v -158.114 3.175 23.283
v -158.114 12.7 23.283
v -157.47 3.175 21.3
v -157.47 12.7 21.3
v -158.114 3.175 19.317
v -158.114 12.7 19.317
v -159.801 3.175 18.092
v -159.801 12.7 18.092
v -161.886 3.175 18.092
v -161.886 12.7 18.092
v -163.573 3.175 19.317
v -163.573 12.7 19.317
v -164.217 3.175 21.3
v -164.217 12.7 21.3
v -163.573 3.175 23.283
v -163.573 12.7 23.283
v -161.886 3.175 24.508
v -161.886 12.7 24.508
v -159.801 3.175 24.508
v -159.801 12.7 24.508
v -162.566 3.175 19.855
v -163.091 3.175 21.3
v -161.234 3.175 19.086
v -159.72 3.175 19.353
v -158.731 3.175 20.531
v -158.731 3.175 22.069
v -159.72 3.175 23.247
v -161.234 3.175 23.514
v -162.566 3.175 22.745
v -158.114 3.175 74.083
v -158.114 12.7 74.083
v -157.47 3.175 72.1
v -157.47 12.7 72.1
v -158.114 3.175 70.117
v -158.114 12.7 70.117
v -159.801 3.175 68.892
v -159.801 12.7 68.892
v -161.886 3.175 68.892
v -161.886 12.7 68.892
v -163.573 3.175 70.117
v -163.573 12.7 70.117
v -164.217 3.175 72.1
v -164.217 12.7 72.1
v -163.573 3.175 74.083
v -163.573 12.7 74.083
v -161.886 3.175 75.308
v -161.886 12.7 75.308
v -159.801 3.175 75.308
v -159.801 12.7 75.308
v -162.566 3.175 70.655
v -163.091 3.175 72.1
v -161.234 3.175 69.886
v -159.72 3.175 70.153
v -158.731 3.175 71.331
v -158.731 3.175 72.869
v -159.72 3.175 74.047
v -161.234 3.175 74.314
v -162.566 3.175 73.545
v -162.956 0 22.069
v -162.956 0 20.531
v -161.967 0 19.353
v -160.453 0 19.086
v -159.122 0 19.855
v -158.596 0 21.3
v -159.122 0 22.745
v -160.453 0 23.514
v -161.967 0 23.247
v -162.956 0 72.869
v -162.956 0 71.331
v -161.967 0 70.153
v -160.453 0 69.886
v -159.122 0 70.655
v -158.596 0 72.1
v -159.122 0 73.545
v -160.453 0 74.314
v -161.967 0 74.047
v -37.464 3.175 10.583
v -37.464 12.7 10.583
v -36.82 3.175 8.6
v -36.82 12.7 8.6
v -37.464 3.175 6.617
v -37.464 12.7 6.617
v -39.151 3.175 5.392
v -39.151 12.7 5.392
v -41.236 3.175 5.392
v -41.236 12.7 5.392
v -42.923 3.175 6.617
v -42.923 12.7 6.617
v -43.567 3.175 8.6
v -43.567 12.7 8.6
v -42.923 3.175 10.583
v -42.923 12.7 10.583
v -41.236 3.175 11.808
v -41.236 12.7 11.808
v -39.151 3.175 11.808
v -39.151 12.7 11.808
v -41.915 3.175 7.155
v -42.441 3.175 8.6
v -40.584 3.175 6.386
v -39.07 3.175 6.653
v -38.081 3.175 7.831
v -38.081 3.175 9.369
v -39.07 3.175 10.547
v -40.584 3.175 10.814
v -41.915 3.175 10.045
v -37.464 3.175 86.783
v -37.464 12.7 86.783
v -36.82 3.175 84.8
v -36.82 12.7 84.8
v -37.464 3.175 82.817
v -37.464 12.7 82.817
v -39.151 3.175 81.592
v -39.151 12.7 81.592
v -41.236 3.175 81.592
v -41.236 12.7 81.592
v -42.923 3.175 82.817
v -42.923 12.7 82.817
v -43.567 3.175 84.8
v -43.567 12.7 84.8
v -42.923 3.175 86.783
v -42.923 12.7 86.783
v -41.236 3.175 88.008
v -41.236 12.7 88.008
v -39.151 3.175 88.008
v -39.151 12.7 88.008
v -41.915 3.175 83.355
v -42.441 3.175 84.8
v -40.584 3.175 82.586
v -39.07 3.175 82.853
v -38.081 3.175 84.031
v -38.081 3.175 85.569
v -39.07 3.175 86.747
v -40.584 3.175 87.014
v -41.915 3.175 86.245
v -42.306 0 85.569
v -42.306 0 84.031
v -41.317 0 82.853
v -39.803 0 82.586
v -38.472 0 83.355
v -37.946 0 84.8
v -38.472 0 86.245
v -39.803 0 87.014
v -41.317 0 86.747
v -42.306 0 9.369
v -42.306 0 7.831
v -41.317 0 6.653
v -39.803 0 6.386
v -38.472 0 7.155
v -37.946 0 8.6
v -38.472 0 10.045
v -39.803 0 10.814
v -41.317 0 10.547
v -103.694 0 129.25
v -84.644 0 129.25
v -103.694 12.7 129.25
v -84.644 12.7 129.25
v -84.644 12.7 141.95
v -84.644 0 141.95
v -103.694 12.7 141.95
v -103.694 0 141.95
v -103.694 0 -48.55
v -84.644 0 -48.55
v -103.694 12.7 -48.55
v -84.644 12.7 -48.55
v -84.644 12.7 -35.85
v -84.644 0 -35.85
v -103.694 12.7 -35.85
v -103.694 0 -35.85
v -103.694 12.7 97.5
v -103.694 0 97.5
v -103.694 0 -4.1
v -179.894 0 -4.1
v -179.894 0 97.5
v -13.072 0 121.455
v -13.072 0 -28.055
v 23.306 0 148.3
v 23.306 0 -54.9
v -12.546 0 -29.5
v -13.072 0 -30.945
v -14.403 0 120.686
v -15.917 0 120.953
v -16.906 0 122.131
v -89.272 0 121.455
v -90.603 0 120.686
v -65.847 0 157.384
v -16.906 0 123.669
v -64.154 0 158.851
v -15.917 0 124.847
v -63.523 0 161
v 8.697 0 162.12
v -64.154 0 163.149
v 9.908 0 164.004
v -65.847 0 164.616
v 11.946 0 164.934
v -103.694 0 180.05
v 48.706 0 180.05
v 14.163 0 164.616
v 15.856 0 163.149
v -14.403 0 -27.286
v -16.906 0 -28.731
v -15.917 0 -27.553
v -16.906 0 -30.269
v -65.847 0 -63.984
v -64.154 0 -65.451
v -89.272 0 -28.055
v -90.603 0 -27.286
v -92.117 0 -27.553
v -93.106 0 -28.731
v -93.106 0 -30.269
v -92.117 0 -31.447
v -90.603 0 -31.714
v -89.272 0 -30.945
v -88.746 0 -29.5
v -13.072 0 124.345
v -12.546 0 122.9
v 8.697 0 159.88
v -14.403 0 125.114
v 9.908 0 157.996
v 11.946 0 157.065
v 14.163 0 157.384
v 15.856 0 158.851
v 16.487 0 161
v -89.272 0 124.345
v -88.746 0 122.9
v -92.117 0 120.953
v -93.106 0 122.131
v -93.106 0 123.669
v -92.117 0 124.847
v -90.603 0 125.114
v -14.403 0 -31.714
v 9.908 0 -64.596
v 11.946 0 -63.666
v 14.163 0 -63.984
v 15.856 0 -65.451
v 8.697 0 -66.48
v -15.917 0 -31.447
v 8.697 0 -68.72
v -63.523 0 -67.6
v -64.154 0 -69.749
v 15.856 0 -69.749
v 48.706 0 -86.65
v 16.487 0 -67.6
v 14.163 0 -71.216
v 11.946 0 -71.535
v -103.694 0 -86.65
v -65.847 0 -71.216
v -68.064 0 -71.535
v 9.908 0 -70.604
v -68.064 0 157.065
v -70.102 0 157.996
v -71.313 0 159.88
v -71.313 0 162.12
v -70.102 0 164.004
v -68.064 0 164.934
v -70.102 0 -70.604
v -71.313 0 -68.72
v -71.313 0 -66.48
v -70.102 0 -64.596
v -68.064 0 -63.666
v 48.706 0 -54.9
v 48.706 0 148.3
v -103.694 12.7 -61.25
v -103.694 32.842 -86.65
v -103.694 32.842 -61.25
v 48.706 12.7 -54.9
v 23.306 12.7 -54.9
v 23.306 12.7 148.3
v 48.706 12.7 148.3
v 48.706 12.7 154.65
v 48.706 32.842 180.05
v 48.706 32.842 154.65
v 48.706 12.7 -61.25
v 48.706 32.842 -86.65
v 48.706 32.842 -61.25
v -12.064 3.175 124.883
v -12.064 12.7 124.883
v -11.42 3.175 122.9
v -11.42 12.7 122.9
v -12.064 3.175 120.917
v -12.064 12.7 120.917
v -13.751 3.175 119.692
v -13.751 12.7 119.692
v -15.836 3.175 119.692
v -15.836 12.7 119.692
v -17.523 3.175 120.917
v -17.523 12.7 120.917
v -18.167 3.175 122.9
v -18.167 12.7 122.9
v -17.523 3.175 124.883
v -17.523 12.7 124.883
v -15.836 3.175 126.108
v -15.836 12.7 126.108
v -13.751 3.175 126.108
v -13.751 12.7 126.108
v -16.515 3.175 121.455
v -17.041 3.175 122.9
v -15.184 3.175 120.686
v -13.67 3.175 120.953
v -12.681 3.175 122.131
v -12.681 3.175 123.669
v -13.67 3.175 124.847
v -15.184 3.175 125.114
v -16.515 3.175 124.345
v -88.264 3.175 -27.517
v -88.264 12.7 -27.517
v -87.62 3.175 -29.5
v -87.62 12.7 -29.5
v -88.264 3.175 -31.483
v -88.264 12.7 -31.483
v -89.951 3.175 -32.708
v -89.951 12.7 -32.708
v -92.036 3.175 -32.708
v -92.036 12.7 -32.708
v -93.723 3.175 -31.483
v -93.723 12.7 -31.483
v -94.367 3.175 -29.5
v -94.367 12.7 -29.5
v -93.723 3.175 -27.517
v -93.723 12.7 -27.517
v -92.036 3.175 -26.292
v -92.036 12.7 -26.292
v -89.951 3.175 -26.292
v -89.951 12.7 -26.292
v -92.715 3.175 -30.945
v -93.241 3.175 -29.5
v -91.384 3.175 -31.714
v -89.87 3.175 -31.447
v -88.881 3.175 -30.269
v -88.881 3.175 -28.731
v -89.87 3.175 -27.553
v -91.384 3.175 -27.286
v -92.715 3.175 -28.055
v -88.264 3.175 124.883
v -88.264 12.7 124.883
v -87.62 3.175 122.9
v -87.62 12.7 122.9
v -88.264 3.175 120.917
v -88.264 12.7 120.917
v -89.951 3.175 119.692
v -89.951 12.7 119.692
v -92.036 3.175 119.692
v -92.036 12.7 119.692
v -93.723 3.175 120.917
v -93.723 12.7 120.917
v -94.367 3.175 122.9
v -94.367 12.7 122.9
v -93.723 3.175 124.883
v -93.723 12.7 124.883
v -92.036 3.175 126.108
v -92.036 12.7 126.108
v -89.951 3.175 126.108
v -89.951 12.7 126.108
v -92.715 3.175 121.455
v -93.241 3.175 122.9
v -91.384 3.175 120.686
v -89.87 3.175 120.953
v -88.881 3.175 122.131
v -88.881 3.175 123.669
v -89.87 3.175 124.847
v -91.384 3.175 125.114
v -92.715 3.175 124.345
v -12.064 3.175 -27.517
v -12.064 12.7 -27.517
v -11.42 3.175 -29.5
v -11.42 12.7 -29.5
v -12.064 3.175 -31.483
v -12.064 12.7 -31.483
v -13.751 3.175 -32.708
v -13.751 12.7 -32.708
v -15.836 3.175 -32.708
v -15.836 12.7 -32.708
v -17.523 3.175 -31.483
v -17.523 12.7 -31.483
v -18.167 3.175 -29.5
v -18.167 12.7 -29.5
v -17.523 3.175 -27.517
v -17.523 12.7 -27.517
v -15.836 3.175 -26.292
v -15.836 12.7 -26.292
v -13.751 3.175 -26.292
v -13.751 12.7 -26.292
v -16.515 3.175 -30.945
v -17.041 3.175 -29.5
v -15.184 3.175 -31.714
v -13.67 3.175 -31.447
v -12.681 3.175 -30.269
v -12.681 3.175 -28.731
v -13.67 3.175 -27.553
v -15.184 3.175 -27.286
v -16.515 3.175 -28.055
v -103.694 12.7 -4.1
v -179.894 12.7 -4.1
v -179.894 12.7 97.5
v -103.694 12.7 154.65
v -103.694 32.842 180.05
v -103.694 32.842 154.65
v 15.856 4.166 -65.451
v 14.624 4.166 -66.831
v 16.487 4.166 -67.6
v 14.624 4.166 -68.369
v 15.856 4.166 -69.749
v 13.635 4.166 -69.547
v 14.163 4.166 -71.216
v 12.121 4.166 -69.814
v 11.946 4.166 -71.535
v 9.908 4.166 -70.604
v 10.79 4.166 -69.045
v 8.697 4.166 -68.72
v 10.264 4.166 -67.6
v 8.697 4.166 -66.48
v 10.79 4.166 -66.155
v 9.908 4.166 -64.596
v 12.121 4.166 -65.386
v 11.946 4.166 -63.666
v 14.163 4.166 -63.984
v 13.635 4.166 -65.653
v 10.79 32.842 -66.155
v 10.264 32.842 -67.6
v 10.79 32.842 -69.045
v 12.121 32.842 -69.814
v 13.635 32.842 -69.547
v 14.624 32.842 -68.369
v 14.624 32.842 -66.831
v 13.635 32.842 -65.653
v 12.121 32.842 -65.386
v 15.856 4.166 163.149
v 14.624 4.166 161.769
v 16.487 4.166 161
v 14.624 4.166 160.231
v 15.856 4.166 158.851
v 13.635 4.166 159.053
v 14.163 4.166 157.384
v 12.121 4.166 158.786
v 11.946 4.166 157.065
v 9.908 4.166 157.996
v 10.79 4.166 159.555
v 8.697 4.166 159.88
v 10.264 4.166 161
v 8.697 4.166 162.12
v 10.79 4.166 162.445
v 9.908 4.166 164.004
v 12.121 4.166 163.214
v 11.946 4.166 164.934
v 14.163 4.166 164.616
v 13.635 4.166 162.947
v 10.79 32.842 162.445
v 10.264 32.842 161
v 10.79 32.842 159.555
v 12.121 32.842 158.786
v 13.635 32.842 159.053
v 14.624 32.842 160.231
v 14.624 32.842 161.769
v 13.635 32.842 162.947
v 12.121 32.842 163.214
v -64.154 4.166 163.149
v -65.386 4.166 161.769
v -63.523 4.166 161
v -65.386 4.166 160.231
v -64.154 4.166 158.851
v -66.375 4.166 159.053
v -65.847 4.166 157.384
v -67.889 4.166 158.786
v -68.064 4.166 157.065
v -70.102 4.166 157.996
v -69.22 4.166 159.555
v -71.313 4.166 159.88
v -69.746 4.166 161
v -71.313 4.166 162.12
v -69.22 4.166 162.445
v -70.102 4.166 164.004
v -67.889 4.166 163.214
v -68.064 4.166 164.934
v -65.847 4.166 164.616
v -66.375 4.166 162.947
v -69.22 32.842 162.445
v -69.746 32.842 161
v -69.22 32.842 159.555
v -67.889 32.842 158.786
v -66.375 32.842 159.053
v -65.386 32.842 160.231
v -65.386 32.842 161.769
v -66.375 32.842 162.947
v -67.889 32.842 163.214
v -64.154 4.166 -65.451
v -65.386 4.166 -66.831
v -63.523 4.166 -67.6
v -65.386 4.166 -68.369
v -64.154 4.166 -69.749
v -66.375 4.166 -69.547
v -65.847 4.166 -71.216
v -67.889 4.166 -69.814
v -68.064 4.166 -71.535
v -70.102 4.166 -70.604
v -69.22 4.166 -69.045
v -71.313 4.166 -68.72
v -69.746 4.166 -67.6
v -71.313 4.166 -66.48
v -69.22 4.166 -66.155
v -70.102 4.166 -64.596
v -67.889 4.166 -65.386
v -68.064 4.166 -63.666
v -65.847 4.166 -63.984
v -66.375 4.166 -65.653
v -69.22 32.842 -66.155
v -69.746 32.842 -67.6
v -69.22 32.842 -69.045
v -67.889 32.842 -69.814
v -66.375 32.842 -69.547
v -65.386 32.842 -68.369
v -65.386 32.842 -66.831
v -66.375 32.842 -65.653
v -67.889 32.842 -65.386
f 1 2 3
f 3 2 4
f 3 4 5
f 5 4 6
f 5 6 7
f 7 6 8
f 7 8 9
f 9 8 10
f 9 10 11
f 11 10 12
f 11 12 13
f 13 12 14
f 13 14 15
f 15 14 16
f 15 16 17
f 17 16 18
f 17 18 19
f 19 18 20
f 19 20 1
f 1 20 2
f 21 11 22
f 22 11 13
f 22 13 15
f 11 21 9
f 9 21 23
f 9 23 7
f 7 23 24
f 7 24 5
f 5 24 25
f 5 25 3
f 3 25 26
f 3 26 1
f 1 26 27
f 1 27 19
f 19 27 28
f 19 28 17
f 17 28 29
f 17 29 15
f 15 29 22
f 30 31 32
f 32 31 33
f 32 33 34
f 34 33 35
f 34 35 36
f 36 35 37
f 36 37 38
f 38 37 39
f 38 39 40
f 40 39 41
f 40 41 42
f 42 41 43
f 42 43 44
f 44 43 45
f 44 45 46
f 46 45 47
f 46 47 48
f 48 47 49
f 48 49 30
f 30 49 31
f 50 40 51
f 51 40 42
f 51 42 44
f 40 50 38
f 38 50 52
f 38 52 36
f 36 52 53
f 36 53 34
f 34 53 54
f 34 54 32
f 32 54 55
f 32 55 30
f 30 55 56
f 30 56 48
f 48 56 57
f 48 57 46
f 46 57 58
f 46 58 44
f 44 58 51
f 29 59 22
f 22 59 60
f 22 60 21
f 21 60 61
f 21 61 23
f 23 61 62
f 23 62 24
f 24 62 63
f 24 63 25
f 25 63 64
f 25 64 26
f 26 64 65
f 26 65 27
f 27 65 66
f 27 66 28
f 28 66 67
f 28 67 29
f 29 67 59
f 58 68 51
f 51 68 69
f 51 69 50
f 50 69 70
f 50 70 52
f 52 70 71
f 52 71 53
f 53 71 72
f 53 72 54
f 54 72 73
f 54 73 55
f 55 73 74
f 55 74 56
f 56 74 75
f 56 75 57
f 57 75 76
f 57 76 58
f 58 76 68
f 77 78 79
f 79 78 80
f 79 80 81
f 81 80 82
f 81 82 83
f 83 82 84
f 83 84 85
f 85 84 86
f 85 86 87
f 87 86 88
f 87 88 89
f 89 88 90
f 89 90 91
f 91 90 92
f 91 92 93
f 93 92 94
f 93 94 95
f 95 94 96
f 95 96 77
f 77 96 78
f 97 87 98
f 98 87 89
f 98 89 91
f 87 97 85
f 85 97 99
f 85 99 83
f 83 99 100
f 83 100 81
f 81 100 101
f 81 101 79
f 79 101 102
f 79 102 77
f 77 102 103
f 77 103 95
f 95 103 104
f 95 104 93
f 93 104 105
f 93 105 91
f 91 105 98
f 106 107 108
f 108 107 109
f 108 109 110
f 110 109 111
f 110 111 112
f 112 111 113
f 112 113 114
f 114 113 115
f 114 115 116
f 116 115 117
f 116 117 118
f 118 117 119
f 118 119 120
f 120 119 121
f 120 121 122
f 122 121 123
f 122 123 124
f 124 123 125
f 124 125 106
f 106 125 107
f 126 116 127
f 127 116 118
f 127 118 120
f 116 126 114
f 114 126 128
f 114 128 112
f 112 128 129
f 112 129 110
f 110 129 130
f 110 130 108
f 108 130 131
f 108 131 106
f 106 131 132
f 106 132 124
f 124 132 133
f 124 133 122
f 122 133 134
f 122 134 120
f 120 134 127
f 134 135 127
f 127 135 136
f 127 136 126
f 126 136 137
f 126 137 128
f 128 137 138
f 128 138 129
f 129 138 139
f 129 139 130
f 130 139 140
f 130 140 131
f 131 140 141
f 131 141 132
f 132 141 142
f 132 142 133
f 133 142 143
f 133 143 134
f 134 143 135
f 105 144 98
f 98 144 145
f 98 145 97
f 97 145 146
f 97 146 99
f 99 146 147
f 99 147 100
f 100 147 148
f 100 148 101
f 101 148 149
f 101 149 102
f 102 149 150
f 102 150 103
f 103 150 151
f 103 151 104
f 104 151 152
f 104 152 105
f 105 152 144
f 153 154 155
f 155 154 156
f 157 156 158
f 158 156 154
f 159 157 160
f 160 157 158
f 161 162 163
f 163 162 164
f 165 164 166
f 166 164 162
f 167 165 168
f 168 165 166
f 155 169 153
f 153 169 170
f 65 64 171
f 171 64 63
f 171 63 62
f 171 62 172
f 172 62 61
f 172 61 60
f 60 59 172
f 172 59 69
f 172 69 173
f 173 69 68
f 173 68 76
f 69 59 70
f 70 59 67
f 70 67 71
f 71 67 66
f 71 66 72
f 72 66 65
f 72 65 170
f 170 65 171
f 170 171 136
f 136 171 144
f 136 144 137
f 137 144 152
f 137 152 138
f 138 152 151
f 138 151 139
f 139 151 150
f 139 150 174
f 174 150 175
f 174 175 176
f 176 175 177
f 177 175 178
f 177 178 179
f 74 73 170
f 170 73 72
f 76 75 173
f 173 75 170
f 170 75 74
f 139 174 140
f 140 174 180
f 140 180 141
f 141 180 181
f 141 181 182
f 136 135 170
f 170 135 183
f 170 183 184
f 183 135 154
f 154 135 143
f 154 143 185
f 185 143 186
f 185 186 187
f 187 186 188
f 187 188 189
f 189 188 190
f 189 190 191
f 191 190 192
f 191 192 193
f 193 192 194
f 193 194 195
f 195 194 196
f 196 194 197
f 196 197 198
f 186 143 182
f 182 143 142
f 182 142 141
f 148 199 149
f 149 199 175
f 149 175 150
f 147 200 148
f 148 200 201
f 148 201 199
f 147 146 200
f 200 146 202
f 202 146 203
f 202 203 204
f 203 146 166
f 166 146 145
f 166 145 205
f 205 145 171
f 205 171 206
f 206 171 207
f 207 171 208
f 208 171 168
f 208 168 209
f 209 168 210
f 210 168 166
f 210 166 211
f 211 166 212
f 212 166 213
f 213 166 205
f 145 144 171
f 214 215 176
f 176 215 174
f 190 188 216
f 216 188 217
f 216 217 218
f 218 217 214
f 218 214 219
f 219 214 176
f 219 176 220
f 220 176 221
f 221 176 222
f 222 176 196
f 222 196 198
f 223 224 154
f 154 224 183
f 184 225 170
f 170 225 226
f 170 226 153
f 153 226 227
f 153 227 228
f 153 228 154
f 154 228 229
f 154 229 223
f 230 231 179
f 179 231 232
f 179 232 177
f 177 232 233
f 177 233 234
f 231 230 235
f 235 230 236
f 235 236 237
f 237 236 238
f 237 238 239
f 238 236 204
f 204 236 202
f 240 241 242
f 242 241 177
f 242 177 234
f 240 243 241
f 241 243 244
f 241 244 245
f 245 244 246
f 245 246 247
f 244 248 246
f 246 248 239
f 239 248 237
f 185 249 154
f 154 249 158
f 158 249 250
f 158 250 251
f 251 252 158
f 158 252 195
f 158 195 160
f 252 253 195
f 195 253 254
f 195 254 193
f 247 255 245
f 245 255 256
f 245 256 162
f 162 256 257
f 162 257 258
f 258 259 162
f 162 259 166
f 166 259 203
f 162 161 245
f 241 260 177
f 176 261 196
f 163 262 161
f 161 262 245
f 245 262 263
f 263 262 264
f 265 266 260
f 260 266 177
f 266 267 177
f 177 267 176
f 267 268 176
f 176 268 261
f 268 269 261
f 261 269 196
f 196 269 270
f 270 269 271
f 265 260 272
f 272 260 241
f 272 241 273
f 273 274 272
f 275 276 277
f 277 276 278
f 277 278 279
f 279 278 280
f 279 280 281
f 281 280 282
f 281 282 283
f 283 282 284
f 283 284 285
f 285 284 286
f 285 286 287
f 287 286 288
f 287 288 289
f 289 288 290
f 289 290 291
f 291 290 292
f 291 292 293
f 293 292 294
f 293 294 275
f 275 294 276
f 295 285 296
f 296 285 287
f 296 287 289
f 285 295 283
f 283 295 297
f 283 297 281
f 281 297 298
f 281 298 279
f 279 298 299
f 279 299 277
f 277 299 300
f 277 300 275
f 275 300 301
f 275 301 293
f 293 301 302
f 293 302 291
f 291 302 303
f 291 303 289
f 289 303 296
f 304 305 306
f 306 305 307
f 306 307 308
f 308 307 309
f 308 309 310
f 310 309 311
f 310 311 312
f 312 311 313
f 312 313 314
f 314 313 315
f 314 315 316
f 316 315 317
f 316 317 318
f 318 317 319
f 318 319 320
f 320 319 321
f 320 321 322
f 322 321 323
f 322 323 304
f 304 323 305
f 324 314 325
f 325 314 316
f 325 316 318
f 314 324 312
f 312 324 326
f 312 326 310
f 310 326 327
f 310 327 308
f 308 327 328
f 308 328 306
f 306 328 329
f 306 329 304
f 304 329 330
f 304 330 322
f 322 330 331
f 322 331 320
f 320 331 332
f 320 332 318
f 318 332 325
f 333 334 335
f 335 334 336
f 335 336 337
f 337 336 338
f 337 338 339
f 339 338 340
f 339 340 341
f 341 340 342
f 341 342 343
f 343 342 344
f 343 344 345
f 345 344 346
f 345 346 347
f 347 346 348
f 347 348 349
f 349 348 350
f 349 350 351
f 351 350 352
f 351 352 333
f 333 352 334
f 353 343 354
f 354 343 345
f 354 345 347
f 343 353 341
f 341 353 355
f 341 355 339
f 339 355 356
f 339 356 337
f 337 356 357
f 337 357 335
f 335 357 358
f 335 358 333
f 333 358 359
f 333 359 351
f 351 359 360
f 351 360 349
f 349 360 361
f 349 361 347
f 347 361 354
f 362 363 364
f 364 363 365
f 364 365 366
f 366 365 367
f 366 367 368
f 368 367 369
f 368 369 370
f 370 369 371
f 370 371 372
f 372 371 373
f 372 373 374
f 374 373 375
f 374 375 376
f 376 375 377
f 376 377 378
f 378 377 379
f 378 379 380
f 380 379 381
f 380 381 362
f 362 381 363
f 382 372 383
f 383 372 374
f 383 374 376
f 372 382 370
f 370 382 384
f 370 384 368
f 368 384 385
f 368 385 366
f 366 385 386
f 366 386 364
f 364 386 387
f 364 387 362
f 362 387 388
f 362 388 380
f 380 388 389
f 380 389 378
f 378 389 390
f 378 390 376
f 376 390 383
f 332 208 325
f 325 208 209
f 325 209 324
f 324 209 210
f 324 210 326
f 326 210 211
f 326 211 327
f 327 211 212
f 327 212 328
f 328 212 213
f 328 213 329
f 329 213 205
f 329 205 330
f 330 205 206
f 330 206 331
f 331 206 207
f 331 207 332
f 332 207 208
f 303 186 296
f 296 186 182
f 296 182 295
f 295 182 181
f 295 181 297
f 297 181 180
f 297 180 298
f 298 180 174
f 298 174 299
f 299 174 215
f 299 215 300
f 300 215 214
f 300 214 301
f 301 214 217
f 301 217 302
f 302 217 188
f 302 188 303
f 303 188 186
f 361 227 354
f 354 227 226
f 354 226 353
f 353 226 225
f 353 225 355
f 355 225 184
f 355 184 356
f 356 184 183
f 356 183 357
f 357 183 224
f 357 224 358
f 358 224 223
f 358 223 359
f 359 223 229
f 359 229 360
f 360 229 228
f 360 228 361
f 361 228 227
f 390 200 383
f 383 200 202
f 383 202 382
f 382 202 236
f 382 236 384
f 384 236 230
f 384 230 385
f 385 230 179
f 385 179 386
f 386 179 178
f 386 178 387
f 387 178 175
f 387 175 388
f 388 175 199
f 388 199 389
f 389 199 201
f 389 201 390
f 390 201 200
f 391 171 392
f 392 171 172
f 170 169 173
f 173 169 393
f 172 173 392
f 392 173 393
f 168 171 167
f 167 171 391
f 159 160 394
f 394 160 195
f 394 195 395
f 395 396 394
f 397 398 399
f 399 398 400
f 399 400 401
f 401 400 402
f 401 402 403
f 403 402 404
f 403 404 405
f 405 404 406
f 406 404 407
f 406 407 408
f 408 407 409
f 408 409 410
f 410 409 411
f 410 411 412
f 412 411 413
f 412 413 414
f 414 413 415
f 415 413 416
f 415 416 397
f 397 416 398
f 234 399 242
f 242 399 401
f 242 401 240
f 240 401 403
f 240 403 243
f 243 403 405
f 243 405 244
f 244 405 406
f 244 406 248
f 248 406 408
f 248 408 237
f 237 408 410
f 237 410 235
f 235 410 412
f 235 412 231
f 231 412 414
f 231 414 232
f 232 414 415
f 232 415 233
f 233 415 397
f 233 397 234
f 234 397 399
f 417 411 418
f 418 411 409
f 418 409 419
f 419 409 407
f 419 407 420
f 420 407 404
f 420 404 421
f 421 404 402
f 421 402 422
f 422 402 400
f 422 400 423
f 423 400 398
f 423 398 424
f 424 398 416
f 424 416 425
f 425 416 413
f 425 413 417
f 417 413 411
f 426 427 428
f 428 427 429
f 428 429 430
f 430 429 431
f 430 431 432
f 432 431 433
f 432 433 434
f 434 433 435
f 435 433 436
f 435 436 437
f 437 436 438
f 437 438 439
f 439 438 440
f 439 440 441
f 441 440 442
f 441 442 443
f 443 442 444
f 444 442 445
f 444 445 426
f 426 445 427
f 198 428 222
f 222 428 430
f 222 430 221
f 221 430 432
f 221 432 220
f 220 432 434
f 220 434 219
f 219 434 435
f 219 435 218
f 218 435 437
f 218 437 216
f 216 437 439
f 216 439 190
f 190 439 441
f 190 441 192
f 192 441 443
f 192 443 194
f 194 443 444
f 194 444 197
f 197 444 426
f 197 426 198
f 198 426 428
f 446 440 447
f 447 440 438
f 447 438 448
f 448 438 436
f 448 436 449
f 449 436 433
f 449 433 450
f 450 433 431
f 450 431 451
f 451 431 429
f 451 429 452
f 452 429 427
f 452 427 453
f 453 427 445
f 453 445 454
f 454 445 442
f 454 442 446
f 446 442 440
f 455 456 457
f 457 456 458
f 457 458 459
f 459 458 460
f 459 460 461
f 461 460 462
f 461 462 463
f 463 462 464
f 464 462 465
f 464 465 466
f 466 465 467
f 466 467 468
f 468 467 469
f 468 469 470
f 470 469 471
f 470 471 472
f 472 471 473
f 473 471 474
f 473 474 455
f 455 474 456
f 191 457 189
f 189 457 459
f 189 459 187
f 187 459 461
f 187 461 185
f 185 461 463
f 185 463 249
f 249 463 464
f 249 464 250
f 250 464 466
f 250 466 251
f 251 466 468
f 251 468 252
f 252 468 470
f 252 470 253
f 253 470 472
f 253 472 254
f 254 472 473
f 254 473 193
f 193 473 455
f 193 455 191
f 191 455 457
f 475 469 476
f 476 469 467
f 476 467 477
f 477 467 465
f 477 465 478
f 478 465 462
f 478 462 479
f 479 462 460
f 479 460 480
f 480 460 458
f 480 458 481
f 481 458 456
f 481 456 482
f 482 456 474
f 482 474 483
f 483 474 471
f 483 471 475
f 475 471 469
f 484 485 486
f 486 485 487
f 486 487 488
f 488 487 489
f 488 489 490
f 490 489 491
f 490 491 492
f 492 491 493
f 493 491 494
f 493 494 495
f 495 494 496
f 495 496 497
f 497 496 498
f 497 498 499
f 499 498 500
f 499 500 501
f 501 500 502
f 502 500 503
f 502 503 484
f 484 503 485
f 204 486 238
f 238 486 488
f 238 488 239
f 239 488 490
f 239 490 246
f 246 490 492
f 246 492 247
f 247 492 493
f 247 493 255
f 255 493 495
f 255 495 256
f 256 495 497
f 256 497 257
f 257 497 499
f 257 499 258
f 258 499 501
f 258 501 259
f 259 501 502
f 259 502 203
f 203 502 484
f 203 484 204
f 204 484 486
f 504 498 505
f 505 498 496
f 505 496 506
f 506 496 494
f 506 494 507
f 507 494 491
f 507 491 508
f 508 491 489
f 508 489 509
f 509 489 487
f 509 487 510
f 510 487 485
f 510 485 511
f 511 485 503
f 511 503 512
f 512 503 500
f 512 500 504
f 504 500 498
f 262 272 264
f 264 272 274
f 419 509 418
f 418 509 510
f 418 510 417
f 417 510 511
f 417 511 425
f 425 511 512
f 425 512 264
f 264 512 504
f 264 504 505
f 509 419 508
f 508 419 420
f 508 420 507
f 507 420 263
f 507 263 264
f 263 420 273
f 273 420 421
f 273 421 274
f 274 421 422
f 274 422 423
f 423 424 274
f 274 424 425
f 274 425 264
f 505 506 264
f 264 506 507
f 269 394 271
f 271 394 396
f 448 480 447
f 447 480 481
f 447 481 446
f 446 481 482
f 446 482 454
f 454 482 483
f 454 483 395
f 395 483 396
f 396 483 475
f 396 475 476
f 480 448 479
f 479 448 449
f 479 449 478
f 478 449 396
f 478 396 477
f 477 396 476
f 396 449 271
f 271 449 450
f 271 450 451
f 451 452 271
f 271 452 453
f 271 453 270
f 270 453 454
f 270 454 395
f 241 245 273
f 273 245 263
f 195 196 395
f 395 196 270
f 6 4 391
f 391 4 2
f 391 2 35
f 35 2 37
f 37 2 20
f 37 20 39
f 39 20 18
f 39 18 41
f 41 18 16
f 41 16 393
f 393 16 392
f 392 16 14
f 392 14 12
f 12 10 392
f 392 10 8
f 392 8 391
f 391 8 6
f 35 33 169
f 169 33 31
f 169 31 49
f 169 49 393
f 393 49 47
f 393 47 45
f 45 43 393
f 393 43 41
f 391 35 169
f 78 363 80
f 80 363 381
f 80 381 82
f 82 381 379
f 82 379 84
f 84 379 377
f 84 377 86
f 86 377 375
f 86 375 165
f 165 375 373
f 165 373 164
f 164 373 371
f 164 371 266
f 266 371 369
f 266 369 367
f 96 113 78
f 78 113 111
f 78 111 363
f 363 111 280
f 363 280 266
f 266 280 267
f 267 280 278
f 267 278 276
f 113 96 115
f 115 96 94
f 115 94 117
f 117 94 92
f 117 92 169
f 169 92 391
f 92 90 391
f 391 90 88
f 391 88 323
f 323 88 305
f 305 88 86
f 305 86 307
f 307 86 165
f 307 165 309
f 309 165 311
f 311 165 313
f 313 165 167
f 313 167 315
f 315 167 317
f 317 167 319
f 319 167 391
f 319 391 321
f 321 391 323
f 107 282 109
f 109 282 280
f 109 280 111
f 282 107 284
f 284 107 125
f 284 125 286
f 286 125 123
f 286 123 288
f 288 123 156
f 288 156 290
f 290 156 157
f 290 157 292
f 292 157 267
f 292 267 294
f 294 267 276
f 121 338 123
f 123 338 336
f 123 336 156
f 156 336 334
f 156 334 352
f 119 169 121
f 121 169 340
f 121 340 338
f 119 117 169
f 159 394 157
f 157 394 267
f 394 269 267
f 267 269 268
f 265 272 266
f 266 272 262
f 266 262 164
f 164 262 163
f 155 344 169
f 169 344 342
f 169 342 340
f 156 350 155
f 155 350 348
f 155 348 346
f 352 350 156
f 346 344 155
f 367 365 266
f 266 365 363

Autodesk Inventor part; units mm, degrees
ref_plane "YZ Plane" through (0, 0, 0) normal (1, 0, 0) x (0, 1, 0)
ref_plane "XZ Plane" through (0, 0, 0) normal (0, 1, 0) x (-1, 0, 0)
ref_plane "XY Plane" through (0, 0, 0) normal (0, 0, 1) x (1, 0, 0)
sketch "Sketch1" plane through (0, 0, 0) normal (0, 1, 0) x (-1, 0, 0)
  line L0 (103.6935, 180.0499) -> (-48.7065, 180.0499)
  line L1 (-48.7065, 180.0499) -> (-48.7065, -86.6501)
  line L2 (-48.7065, -86.6501) -> (103.6935, -86.6501)
  line L3 (103.6935, -86.6501) -> (103.6935, 180.0499)
  point P0 (0, 0)
  dimension "d0" = 266.7
  dimension "d1" = 152.4
extrude "Extrusion1" add sketch "Sketch1" along normal blind 12.7
sketch "Sketch2" plane through (0, 12.7, 0) normal (0, 1, 0) x (1, 0, 0)
  line L0 (-103.6935, 86.6501) -> (-103.6935, -180.0499) projected
  line L1 (-103.6935, -180.0499) -> (48.7065, -180.0499)
  line L2 (48.7065, -180.0499) -> (48.7065, -154.6499)
  line L3 (48.7065, -154.6499) -> (-103.6935, -154.6499)
  line L4 (-103.6935, -154.6499) -> (-103.6935, -180.0499)
  line L5 (48.7065, -180.0499) -> (48.7065, 86.6501) projected
  line L6 (48.7065, 86.6501) -> (-103.6935, 86.6501)
  line L7 (-103.6935, 86.6501) -> (-103.6935, 61.2501)
  line L8 (-103.6935, 61.2501) -> (48.7065, 61.2501)
  line L9 (48.7065, 61.2501) -> (48.7065, 86.6501)
  point P0 (0, 0)
  dimension "d4" = 25.4
  dimension "d5" = 25.4
  dimension "d8" = 0
extrude "Extrusion2" add sketch "Sketch2" along normal blind 20.1422 contours L6 L5 L8 L0 | L3 L2 L1 L0
sketch "Sketch3" plane through (0, 0, 0) normal (0, -1, 0) x (1, 0, 0)
  line L0 (94.7395, 46.6999) -> (-172.7542, 46.6999)
  line L1 (-103.6935, 180.0499) -> (48.7065, 180.0499) projected
  line L2 (-27.4935, 259.5672) -> (-27.4935, -153.6047)
  line L3 (48.7065, 180.0499) -> (48.7065, -86.6501) projected
  point P0 (0, 0)
  point P1 (12.5115, 160.9999)
  point P2 (-67.4985, 160.9999)
  point P3 (12.5115, -67.6001)
  point P4 (-67.4985, -67.6001)
  dimension "d9" = 133.35
  dimension "d10" = 76.2
  dimension "d11" = 40.005
  dimension "d12" = 40.005
  dimension "d13" = 0
  dimension "d14" = 0
  dimension "d15" = 114.3
  dimension "d16" = 0
  dimension "d17" = 0
  dimension "d18" = 114.3
hole "Hole1" at (12.5115, 0, 160.9999) at (-67.4985, 0, 160.9999) at (12.5115, 0, -67.6001) at (-67.4985, 0, -67.6001) direction (0, 1, 0) diameter 4.4958 end through all counterbore diameter 7.9502 counterbore depth 4.1656 clearance for "Socket Head Cap Screw" size "#8" standard "Ansi Unified Screw Threads"
sketch "Sketch4" plane through (-103.6935, 0, -86.6501) normal (-1, 0, 0) x (0, 0, 1)
  line L0 (184.15, 0) -> (82.55, 0)
  line L1 (82.55, 0) -> (82.55, 12.7)
  line L2 (82.55, 12.7) -> (184.15, 12.7)
  line L3 (184.15, 12.7) -> (184.15, 0)
  line L4 (0, 0) -> (0, 32.8422) projected
  line L5 (0, 0) -> (266.7, 0) projected
  line L6 (25.4, 12.7) -> (241.3, 12.7) projected
  line L7 (266.7, 0) -> (266.7, 32.8422) projected
  point P0 (86.6501, 0)
  dimension "d26" = 101.6
  dimension "d27" = 82.55
  dimension "d28" = 0
  dimension "d29" = 0
  dimension "d53" = 82.55
extrude "Extrusion3" add sketch "Sketch4" along normal blind 76.2
sketch "Sketch5" plane through (0, 0, 0) normal (0, -1, 0) x (1, 0, 0)
  line L0 (-103.6935, 97.4999) -> (-179.8935, 97.4999) projected
  line L1 (-103.6935, -4.1001) -> (-179.8935, -4.1001) projected
  line L2 (48.7065, 180.0499) -> (48.7065, -86.6501) projected
  line L3 (-103.6935, -86.6501) -> (-103.6935, -4.1001) projected
  point P0 (0, 0)
  point P1 (-14.7935, 122.8999)
  point P2 (-90.9935, 122.8999)
  point P3 (-90.9935, -29.5001)
  point P4 (-14.7935, -29.5001)
  dimension "d32" = 0
  dimension "d33" = 0
  dimension "d34" = 25.4
  dimension "d35" = 25.4
  dimension "d36" = 0
  dimension "d38" = 12.7
  dimension "d52" = 76.2
  dimension "d54" = 0
hole "Hole2" at (-14.7935, 0, 122.8999) at (-90.9935, 0, 122.8999) at (-90.9935, 0, -29.5001) at (-14.7935, 0, -29.5001) direction (0, 1, 0) diameter 4.4958 end through all
sketch "Sketch6" plane through (0, 12.7, 0) normal (0, 1, 0) x (1, 0, 0)
  circle A0 centre (-90.9935, -122.8999) radius 2.2479 projected
  circle A1 centre (-14.7935, -122.8999) radius 2.2479 projected
  circle A2 centre (-14.7935, 29.5001) radius 2.2479 projected
  circle A3 centre (-90.9935, 29.5001) radius 2.2479 projected
  circle A4 centre (-90.9935, 29.5001) radius 2.2479 projected
  circle A5 centre (-90.9935, 29.5001) radius 3.3734
  circle A6 centre (-90.9935, -122.8999) radius 3.3734
  circle A7 centre (-14.7935, -122.8999) radius 3.3734
  circle A8 centre (-14.7935, 29.5001) radius 3.3734
  point P0 (0, 0)
  dimension "d46" = 6.7469
  dimension "d47" = 6.7469
  dimension "d48" = 6.7469
  dimension "d49" = 6.7469
extrude "Extrusion4" cut sketch "Sketch6" against normal blind 9.525 contours A0 | A1 | A2 | A3 | A5 | A6 | A7 | A8
sketch "Sketch7" plane through (0, 0, 0) normal (0, -1, 0) x (1, 0, 0)
  line L0 (85.2483, 148.2999) -> (23.3065, 148.2999)
  line L1 (23.3065, 148.2999) -> (23.3065, -54.9001)
  line L2 (23.3065, -54.9001) -> (85.2483, -54.9001)
  line L3 (85.2483, -54.9001) -> (85.2483, 148.2999)
  line L4 (48.7065, -86.6501) -> (-103.6935, -86.6501) projected
  line L5 (-103.6935, 180.0499) -> (48.7065, 180.0499) projected
  line L6 (48.7065, 180.0499) -> (48.7065, -86.6501) projected
  point P0 (0, 0)
  dimension "d55" = 31.75
  dimension "d56" = 31.75
  dimension "d57" = 25.4
extrude "Extrusion5" cut sketch "Sketch7" against normal blind 50.8
sketch "Sketch8" plane through (0, 0, 0) normal (0, -1, 0) x (1, 0, 0)
  line L0 (-111.6685, 129.2499) -> (-84.6435, 129.2499)
  line L1 (-84.6435, 129.2499) -> (-84.6435, 141.9499)
  line L2 (-84.6435, 141.9499) -> (-111.6685, 141.9499)
  line L3 (-111.6685, 141.9499) -> (-111.6685, 129.2499)
  line L4 (-115.7126, -48.5501) -> (-84.6435, -48.5501)
  line L5 (-84.6435, -48.5501) -> (-84.6435, -35.8501)
  line L6 (-84.6435, -35.8501) -> (-115.7126, -35.8501)
  line L7 (-115.7126, -35.8501) -> (-115.7126, -48.5501)
  line L8 (-103.6935, -86.6501) -> (-103.6935, -4.1001) projected
  line L9 (-103.6935, 97.4999) -> (-103.6935, 180.0499) projected
  point P0 (0, 0)
  point P1 (-103.6935, -61.2501)
  point P2 (-103.6935, 154.6499)
  dimension "d60" = 12.7
  dimension "d61" = 12.7
  dimension "d62" = 19.05
  dimension "d63" = 19.05
  dimension "d64" = 12.7
  dimension "d65" = 12.7
extrude "Extrusion6" cut sketch "Sketch8" against normal blind 50.8
sketch "Sketch9" plane through (0, 0, 0) normal (0, -1, 0) x (1, 0, 0)
  line L0 (-103.6935, 180.0499) -> (48.7065, 180.0499) projected
  line L1 (48.7065, 180.0499) -> (48.7065, 148.2999) projected
  point P0 (0, 0)
  point P1 (-40.1935, 84.7999)
  point P2 (-40.1935, 8.5999)
  dimension "d68" = 76.2
  dimension "d69" = 0
  dimension "d70" = 95.25
  dimension "d71" = 88.9
hole "Hole3" at (-40.1935, 0, 84.7999) at (-40.1935, 0, 8.5999) direction (0, 1, 0) diameter 4.4958 end through all clearance for "Flat Head Machine Screw (82)" size "#8" standard "Ansi Unified Screw Threads"
sketch "Sketch10" plane through (0, 12.7, 0) normal (0, 1, 0) x (1, 0, 0)
  circle A0 centre (-40.1935, -84.7999) radius 2.2479 projected
  circle A1 centre (-40.1935, -8.5999) radius 2.2479 projected
  circle A2 centre (-40.1935, -8.5999) radius 2.2479 projected
  circle A3 centre (-40.1935, -8.5999) radius 3.3734
  circle A4 centre (-40.1935, -84.7999) radius 3.3734
  point P0 (0, 0)
  dimension "d79" = 6.7469
  dimension "d80" = 6.7469
extrude "Extrusion7" cut sketch "Sketch10" against normal blind 9.525 contours A0 | A1 | A3 | A4
sketch "Sketch11" plane through (0, 0, 0) normal (0, -1, 0) x (1, 0, 0)
  circle A0 centre (-40.1935, 8.5999) radius 2.2479 projected
  point P0 (0, 0)
  point P1 (-160.8435, 21.2999)
  point P2 (-160.8435, 72.0999)
  dimension "d83" = 120.65
  dimension "d84" = 0
  dimension "d85" = 50.8
  dimension "d86" = 12.7
hole "Hole4" at (-160.8435, 0, 21.2999) at (-160.8435, 0, 72.0999) direction (0, 1, 0) diameter 4.4958 end through all clearance for "Flat Head Machine Screw (82)" size "#8" standard "Ansi Unified Screw Threads"
sketch "Sketch12" plane through (0, 12.7, 0) normal (0, 1, 0) x (1, 0, 0)
  circle A0 centre (-160.8435, -72.0999) radius 2.2479 projected
  circle A1 centre (-160.8435, -21.2999) radius 2.2479 projected
  circle A2 centre (-160.8435, -21.2999) radius 3.3734
  circle A3 centre (-160.8435, -72.0999) radius 3.3734
  point P0 (0, 0)
  dimension "d94" = 6.7469
  dimension "d95" = 6.7469
extrude "Extrusion8" cut sketch "Sketch12" against normal blind 9.525 contours A0 | A1 | A2 | A3
properties part number "MotorPlate"
